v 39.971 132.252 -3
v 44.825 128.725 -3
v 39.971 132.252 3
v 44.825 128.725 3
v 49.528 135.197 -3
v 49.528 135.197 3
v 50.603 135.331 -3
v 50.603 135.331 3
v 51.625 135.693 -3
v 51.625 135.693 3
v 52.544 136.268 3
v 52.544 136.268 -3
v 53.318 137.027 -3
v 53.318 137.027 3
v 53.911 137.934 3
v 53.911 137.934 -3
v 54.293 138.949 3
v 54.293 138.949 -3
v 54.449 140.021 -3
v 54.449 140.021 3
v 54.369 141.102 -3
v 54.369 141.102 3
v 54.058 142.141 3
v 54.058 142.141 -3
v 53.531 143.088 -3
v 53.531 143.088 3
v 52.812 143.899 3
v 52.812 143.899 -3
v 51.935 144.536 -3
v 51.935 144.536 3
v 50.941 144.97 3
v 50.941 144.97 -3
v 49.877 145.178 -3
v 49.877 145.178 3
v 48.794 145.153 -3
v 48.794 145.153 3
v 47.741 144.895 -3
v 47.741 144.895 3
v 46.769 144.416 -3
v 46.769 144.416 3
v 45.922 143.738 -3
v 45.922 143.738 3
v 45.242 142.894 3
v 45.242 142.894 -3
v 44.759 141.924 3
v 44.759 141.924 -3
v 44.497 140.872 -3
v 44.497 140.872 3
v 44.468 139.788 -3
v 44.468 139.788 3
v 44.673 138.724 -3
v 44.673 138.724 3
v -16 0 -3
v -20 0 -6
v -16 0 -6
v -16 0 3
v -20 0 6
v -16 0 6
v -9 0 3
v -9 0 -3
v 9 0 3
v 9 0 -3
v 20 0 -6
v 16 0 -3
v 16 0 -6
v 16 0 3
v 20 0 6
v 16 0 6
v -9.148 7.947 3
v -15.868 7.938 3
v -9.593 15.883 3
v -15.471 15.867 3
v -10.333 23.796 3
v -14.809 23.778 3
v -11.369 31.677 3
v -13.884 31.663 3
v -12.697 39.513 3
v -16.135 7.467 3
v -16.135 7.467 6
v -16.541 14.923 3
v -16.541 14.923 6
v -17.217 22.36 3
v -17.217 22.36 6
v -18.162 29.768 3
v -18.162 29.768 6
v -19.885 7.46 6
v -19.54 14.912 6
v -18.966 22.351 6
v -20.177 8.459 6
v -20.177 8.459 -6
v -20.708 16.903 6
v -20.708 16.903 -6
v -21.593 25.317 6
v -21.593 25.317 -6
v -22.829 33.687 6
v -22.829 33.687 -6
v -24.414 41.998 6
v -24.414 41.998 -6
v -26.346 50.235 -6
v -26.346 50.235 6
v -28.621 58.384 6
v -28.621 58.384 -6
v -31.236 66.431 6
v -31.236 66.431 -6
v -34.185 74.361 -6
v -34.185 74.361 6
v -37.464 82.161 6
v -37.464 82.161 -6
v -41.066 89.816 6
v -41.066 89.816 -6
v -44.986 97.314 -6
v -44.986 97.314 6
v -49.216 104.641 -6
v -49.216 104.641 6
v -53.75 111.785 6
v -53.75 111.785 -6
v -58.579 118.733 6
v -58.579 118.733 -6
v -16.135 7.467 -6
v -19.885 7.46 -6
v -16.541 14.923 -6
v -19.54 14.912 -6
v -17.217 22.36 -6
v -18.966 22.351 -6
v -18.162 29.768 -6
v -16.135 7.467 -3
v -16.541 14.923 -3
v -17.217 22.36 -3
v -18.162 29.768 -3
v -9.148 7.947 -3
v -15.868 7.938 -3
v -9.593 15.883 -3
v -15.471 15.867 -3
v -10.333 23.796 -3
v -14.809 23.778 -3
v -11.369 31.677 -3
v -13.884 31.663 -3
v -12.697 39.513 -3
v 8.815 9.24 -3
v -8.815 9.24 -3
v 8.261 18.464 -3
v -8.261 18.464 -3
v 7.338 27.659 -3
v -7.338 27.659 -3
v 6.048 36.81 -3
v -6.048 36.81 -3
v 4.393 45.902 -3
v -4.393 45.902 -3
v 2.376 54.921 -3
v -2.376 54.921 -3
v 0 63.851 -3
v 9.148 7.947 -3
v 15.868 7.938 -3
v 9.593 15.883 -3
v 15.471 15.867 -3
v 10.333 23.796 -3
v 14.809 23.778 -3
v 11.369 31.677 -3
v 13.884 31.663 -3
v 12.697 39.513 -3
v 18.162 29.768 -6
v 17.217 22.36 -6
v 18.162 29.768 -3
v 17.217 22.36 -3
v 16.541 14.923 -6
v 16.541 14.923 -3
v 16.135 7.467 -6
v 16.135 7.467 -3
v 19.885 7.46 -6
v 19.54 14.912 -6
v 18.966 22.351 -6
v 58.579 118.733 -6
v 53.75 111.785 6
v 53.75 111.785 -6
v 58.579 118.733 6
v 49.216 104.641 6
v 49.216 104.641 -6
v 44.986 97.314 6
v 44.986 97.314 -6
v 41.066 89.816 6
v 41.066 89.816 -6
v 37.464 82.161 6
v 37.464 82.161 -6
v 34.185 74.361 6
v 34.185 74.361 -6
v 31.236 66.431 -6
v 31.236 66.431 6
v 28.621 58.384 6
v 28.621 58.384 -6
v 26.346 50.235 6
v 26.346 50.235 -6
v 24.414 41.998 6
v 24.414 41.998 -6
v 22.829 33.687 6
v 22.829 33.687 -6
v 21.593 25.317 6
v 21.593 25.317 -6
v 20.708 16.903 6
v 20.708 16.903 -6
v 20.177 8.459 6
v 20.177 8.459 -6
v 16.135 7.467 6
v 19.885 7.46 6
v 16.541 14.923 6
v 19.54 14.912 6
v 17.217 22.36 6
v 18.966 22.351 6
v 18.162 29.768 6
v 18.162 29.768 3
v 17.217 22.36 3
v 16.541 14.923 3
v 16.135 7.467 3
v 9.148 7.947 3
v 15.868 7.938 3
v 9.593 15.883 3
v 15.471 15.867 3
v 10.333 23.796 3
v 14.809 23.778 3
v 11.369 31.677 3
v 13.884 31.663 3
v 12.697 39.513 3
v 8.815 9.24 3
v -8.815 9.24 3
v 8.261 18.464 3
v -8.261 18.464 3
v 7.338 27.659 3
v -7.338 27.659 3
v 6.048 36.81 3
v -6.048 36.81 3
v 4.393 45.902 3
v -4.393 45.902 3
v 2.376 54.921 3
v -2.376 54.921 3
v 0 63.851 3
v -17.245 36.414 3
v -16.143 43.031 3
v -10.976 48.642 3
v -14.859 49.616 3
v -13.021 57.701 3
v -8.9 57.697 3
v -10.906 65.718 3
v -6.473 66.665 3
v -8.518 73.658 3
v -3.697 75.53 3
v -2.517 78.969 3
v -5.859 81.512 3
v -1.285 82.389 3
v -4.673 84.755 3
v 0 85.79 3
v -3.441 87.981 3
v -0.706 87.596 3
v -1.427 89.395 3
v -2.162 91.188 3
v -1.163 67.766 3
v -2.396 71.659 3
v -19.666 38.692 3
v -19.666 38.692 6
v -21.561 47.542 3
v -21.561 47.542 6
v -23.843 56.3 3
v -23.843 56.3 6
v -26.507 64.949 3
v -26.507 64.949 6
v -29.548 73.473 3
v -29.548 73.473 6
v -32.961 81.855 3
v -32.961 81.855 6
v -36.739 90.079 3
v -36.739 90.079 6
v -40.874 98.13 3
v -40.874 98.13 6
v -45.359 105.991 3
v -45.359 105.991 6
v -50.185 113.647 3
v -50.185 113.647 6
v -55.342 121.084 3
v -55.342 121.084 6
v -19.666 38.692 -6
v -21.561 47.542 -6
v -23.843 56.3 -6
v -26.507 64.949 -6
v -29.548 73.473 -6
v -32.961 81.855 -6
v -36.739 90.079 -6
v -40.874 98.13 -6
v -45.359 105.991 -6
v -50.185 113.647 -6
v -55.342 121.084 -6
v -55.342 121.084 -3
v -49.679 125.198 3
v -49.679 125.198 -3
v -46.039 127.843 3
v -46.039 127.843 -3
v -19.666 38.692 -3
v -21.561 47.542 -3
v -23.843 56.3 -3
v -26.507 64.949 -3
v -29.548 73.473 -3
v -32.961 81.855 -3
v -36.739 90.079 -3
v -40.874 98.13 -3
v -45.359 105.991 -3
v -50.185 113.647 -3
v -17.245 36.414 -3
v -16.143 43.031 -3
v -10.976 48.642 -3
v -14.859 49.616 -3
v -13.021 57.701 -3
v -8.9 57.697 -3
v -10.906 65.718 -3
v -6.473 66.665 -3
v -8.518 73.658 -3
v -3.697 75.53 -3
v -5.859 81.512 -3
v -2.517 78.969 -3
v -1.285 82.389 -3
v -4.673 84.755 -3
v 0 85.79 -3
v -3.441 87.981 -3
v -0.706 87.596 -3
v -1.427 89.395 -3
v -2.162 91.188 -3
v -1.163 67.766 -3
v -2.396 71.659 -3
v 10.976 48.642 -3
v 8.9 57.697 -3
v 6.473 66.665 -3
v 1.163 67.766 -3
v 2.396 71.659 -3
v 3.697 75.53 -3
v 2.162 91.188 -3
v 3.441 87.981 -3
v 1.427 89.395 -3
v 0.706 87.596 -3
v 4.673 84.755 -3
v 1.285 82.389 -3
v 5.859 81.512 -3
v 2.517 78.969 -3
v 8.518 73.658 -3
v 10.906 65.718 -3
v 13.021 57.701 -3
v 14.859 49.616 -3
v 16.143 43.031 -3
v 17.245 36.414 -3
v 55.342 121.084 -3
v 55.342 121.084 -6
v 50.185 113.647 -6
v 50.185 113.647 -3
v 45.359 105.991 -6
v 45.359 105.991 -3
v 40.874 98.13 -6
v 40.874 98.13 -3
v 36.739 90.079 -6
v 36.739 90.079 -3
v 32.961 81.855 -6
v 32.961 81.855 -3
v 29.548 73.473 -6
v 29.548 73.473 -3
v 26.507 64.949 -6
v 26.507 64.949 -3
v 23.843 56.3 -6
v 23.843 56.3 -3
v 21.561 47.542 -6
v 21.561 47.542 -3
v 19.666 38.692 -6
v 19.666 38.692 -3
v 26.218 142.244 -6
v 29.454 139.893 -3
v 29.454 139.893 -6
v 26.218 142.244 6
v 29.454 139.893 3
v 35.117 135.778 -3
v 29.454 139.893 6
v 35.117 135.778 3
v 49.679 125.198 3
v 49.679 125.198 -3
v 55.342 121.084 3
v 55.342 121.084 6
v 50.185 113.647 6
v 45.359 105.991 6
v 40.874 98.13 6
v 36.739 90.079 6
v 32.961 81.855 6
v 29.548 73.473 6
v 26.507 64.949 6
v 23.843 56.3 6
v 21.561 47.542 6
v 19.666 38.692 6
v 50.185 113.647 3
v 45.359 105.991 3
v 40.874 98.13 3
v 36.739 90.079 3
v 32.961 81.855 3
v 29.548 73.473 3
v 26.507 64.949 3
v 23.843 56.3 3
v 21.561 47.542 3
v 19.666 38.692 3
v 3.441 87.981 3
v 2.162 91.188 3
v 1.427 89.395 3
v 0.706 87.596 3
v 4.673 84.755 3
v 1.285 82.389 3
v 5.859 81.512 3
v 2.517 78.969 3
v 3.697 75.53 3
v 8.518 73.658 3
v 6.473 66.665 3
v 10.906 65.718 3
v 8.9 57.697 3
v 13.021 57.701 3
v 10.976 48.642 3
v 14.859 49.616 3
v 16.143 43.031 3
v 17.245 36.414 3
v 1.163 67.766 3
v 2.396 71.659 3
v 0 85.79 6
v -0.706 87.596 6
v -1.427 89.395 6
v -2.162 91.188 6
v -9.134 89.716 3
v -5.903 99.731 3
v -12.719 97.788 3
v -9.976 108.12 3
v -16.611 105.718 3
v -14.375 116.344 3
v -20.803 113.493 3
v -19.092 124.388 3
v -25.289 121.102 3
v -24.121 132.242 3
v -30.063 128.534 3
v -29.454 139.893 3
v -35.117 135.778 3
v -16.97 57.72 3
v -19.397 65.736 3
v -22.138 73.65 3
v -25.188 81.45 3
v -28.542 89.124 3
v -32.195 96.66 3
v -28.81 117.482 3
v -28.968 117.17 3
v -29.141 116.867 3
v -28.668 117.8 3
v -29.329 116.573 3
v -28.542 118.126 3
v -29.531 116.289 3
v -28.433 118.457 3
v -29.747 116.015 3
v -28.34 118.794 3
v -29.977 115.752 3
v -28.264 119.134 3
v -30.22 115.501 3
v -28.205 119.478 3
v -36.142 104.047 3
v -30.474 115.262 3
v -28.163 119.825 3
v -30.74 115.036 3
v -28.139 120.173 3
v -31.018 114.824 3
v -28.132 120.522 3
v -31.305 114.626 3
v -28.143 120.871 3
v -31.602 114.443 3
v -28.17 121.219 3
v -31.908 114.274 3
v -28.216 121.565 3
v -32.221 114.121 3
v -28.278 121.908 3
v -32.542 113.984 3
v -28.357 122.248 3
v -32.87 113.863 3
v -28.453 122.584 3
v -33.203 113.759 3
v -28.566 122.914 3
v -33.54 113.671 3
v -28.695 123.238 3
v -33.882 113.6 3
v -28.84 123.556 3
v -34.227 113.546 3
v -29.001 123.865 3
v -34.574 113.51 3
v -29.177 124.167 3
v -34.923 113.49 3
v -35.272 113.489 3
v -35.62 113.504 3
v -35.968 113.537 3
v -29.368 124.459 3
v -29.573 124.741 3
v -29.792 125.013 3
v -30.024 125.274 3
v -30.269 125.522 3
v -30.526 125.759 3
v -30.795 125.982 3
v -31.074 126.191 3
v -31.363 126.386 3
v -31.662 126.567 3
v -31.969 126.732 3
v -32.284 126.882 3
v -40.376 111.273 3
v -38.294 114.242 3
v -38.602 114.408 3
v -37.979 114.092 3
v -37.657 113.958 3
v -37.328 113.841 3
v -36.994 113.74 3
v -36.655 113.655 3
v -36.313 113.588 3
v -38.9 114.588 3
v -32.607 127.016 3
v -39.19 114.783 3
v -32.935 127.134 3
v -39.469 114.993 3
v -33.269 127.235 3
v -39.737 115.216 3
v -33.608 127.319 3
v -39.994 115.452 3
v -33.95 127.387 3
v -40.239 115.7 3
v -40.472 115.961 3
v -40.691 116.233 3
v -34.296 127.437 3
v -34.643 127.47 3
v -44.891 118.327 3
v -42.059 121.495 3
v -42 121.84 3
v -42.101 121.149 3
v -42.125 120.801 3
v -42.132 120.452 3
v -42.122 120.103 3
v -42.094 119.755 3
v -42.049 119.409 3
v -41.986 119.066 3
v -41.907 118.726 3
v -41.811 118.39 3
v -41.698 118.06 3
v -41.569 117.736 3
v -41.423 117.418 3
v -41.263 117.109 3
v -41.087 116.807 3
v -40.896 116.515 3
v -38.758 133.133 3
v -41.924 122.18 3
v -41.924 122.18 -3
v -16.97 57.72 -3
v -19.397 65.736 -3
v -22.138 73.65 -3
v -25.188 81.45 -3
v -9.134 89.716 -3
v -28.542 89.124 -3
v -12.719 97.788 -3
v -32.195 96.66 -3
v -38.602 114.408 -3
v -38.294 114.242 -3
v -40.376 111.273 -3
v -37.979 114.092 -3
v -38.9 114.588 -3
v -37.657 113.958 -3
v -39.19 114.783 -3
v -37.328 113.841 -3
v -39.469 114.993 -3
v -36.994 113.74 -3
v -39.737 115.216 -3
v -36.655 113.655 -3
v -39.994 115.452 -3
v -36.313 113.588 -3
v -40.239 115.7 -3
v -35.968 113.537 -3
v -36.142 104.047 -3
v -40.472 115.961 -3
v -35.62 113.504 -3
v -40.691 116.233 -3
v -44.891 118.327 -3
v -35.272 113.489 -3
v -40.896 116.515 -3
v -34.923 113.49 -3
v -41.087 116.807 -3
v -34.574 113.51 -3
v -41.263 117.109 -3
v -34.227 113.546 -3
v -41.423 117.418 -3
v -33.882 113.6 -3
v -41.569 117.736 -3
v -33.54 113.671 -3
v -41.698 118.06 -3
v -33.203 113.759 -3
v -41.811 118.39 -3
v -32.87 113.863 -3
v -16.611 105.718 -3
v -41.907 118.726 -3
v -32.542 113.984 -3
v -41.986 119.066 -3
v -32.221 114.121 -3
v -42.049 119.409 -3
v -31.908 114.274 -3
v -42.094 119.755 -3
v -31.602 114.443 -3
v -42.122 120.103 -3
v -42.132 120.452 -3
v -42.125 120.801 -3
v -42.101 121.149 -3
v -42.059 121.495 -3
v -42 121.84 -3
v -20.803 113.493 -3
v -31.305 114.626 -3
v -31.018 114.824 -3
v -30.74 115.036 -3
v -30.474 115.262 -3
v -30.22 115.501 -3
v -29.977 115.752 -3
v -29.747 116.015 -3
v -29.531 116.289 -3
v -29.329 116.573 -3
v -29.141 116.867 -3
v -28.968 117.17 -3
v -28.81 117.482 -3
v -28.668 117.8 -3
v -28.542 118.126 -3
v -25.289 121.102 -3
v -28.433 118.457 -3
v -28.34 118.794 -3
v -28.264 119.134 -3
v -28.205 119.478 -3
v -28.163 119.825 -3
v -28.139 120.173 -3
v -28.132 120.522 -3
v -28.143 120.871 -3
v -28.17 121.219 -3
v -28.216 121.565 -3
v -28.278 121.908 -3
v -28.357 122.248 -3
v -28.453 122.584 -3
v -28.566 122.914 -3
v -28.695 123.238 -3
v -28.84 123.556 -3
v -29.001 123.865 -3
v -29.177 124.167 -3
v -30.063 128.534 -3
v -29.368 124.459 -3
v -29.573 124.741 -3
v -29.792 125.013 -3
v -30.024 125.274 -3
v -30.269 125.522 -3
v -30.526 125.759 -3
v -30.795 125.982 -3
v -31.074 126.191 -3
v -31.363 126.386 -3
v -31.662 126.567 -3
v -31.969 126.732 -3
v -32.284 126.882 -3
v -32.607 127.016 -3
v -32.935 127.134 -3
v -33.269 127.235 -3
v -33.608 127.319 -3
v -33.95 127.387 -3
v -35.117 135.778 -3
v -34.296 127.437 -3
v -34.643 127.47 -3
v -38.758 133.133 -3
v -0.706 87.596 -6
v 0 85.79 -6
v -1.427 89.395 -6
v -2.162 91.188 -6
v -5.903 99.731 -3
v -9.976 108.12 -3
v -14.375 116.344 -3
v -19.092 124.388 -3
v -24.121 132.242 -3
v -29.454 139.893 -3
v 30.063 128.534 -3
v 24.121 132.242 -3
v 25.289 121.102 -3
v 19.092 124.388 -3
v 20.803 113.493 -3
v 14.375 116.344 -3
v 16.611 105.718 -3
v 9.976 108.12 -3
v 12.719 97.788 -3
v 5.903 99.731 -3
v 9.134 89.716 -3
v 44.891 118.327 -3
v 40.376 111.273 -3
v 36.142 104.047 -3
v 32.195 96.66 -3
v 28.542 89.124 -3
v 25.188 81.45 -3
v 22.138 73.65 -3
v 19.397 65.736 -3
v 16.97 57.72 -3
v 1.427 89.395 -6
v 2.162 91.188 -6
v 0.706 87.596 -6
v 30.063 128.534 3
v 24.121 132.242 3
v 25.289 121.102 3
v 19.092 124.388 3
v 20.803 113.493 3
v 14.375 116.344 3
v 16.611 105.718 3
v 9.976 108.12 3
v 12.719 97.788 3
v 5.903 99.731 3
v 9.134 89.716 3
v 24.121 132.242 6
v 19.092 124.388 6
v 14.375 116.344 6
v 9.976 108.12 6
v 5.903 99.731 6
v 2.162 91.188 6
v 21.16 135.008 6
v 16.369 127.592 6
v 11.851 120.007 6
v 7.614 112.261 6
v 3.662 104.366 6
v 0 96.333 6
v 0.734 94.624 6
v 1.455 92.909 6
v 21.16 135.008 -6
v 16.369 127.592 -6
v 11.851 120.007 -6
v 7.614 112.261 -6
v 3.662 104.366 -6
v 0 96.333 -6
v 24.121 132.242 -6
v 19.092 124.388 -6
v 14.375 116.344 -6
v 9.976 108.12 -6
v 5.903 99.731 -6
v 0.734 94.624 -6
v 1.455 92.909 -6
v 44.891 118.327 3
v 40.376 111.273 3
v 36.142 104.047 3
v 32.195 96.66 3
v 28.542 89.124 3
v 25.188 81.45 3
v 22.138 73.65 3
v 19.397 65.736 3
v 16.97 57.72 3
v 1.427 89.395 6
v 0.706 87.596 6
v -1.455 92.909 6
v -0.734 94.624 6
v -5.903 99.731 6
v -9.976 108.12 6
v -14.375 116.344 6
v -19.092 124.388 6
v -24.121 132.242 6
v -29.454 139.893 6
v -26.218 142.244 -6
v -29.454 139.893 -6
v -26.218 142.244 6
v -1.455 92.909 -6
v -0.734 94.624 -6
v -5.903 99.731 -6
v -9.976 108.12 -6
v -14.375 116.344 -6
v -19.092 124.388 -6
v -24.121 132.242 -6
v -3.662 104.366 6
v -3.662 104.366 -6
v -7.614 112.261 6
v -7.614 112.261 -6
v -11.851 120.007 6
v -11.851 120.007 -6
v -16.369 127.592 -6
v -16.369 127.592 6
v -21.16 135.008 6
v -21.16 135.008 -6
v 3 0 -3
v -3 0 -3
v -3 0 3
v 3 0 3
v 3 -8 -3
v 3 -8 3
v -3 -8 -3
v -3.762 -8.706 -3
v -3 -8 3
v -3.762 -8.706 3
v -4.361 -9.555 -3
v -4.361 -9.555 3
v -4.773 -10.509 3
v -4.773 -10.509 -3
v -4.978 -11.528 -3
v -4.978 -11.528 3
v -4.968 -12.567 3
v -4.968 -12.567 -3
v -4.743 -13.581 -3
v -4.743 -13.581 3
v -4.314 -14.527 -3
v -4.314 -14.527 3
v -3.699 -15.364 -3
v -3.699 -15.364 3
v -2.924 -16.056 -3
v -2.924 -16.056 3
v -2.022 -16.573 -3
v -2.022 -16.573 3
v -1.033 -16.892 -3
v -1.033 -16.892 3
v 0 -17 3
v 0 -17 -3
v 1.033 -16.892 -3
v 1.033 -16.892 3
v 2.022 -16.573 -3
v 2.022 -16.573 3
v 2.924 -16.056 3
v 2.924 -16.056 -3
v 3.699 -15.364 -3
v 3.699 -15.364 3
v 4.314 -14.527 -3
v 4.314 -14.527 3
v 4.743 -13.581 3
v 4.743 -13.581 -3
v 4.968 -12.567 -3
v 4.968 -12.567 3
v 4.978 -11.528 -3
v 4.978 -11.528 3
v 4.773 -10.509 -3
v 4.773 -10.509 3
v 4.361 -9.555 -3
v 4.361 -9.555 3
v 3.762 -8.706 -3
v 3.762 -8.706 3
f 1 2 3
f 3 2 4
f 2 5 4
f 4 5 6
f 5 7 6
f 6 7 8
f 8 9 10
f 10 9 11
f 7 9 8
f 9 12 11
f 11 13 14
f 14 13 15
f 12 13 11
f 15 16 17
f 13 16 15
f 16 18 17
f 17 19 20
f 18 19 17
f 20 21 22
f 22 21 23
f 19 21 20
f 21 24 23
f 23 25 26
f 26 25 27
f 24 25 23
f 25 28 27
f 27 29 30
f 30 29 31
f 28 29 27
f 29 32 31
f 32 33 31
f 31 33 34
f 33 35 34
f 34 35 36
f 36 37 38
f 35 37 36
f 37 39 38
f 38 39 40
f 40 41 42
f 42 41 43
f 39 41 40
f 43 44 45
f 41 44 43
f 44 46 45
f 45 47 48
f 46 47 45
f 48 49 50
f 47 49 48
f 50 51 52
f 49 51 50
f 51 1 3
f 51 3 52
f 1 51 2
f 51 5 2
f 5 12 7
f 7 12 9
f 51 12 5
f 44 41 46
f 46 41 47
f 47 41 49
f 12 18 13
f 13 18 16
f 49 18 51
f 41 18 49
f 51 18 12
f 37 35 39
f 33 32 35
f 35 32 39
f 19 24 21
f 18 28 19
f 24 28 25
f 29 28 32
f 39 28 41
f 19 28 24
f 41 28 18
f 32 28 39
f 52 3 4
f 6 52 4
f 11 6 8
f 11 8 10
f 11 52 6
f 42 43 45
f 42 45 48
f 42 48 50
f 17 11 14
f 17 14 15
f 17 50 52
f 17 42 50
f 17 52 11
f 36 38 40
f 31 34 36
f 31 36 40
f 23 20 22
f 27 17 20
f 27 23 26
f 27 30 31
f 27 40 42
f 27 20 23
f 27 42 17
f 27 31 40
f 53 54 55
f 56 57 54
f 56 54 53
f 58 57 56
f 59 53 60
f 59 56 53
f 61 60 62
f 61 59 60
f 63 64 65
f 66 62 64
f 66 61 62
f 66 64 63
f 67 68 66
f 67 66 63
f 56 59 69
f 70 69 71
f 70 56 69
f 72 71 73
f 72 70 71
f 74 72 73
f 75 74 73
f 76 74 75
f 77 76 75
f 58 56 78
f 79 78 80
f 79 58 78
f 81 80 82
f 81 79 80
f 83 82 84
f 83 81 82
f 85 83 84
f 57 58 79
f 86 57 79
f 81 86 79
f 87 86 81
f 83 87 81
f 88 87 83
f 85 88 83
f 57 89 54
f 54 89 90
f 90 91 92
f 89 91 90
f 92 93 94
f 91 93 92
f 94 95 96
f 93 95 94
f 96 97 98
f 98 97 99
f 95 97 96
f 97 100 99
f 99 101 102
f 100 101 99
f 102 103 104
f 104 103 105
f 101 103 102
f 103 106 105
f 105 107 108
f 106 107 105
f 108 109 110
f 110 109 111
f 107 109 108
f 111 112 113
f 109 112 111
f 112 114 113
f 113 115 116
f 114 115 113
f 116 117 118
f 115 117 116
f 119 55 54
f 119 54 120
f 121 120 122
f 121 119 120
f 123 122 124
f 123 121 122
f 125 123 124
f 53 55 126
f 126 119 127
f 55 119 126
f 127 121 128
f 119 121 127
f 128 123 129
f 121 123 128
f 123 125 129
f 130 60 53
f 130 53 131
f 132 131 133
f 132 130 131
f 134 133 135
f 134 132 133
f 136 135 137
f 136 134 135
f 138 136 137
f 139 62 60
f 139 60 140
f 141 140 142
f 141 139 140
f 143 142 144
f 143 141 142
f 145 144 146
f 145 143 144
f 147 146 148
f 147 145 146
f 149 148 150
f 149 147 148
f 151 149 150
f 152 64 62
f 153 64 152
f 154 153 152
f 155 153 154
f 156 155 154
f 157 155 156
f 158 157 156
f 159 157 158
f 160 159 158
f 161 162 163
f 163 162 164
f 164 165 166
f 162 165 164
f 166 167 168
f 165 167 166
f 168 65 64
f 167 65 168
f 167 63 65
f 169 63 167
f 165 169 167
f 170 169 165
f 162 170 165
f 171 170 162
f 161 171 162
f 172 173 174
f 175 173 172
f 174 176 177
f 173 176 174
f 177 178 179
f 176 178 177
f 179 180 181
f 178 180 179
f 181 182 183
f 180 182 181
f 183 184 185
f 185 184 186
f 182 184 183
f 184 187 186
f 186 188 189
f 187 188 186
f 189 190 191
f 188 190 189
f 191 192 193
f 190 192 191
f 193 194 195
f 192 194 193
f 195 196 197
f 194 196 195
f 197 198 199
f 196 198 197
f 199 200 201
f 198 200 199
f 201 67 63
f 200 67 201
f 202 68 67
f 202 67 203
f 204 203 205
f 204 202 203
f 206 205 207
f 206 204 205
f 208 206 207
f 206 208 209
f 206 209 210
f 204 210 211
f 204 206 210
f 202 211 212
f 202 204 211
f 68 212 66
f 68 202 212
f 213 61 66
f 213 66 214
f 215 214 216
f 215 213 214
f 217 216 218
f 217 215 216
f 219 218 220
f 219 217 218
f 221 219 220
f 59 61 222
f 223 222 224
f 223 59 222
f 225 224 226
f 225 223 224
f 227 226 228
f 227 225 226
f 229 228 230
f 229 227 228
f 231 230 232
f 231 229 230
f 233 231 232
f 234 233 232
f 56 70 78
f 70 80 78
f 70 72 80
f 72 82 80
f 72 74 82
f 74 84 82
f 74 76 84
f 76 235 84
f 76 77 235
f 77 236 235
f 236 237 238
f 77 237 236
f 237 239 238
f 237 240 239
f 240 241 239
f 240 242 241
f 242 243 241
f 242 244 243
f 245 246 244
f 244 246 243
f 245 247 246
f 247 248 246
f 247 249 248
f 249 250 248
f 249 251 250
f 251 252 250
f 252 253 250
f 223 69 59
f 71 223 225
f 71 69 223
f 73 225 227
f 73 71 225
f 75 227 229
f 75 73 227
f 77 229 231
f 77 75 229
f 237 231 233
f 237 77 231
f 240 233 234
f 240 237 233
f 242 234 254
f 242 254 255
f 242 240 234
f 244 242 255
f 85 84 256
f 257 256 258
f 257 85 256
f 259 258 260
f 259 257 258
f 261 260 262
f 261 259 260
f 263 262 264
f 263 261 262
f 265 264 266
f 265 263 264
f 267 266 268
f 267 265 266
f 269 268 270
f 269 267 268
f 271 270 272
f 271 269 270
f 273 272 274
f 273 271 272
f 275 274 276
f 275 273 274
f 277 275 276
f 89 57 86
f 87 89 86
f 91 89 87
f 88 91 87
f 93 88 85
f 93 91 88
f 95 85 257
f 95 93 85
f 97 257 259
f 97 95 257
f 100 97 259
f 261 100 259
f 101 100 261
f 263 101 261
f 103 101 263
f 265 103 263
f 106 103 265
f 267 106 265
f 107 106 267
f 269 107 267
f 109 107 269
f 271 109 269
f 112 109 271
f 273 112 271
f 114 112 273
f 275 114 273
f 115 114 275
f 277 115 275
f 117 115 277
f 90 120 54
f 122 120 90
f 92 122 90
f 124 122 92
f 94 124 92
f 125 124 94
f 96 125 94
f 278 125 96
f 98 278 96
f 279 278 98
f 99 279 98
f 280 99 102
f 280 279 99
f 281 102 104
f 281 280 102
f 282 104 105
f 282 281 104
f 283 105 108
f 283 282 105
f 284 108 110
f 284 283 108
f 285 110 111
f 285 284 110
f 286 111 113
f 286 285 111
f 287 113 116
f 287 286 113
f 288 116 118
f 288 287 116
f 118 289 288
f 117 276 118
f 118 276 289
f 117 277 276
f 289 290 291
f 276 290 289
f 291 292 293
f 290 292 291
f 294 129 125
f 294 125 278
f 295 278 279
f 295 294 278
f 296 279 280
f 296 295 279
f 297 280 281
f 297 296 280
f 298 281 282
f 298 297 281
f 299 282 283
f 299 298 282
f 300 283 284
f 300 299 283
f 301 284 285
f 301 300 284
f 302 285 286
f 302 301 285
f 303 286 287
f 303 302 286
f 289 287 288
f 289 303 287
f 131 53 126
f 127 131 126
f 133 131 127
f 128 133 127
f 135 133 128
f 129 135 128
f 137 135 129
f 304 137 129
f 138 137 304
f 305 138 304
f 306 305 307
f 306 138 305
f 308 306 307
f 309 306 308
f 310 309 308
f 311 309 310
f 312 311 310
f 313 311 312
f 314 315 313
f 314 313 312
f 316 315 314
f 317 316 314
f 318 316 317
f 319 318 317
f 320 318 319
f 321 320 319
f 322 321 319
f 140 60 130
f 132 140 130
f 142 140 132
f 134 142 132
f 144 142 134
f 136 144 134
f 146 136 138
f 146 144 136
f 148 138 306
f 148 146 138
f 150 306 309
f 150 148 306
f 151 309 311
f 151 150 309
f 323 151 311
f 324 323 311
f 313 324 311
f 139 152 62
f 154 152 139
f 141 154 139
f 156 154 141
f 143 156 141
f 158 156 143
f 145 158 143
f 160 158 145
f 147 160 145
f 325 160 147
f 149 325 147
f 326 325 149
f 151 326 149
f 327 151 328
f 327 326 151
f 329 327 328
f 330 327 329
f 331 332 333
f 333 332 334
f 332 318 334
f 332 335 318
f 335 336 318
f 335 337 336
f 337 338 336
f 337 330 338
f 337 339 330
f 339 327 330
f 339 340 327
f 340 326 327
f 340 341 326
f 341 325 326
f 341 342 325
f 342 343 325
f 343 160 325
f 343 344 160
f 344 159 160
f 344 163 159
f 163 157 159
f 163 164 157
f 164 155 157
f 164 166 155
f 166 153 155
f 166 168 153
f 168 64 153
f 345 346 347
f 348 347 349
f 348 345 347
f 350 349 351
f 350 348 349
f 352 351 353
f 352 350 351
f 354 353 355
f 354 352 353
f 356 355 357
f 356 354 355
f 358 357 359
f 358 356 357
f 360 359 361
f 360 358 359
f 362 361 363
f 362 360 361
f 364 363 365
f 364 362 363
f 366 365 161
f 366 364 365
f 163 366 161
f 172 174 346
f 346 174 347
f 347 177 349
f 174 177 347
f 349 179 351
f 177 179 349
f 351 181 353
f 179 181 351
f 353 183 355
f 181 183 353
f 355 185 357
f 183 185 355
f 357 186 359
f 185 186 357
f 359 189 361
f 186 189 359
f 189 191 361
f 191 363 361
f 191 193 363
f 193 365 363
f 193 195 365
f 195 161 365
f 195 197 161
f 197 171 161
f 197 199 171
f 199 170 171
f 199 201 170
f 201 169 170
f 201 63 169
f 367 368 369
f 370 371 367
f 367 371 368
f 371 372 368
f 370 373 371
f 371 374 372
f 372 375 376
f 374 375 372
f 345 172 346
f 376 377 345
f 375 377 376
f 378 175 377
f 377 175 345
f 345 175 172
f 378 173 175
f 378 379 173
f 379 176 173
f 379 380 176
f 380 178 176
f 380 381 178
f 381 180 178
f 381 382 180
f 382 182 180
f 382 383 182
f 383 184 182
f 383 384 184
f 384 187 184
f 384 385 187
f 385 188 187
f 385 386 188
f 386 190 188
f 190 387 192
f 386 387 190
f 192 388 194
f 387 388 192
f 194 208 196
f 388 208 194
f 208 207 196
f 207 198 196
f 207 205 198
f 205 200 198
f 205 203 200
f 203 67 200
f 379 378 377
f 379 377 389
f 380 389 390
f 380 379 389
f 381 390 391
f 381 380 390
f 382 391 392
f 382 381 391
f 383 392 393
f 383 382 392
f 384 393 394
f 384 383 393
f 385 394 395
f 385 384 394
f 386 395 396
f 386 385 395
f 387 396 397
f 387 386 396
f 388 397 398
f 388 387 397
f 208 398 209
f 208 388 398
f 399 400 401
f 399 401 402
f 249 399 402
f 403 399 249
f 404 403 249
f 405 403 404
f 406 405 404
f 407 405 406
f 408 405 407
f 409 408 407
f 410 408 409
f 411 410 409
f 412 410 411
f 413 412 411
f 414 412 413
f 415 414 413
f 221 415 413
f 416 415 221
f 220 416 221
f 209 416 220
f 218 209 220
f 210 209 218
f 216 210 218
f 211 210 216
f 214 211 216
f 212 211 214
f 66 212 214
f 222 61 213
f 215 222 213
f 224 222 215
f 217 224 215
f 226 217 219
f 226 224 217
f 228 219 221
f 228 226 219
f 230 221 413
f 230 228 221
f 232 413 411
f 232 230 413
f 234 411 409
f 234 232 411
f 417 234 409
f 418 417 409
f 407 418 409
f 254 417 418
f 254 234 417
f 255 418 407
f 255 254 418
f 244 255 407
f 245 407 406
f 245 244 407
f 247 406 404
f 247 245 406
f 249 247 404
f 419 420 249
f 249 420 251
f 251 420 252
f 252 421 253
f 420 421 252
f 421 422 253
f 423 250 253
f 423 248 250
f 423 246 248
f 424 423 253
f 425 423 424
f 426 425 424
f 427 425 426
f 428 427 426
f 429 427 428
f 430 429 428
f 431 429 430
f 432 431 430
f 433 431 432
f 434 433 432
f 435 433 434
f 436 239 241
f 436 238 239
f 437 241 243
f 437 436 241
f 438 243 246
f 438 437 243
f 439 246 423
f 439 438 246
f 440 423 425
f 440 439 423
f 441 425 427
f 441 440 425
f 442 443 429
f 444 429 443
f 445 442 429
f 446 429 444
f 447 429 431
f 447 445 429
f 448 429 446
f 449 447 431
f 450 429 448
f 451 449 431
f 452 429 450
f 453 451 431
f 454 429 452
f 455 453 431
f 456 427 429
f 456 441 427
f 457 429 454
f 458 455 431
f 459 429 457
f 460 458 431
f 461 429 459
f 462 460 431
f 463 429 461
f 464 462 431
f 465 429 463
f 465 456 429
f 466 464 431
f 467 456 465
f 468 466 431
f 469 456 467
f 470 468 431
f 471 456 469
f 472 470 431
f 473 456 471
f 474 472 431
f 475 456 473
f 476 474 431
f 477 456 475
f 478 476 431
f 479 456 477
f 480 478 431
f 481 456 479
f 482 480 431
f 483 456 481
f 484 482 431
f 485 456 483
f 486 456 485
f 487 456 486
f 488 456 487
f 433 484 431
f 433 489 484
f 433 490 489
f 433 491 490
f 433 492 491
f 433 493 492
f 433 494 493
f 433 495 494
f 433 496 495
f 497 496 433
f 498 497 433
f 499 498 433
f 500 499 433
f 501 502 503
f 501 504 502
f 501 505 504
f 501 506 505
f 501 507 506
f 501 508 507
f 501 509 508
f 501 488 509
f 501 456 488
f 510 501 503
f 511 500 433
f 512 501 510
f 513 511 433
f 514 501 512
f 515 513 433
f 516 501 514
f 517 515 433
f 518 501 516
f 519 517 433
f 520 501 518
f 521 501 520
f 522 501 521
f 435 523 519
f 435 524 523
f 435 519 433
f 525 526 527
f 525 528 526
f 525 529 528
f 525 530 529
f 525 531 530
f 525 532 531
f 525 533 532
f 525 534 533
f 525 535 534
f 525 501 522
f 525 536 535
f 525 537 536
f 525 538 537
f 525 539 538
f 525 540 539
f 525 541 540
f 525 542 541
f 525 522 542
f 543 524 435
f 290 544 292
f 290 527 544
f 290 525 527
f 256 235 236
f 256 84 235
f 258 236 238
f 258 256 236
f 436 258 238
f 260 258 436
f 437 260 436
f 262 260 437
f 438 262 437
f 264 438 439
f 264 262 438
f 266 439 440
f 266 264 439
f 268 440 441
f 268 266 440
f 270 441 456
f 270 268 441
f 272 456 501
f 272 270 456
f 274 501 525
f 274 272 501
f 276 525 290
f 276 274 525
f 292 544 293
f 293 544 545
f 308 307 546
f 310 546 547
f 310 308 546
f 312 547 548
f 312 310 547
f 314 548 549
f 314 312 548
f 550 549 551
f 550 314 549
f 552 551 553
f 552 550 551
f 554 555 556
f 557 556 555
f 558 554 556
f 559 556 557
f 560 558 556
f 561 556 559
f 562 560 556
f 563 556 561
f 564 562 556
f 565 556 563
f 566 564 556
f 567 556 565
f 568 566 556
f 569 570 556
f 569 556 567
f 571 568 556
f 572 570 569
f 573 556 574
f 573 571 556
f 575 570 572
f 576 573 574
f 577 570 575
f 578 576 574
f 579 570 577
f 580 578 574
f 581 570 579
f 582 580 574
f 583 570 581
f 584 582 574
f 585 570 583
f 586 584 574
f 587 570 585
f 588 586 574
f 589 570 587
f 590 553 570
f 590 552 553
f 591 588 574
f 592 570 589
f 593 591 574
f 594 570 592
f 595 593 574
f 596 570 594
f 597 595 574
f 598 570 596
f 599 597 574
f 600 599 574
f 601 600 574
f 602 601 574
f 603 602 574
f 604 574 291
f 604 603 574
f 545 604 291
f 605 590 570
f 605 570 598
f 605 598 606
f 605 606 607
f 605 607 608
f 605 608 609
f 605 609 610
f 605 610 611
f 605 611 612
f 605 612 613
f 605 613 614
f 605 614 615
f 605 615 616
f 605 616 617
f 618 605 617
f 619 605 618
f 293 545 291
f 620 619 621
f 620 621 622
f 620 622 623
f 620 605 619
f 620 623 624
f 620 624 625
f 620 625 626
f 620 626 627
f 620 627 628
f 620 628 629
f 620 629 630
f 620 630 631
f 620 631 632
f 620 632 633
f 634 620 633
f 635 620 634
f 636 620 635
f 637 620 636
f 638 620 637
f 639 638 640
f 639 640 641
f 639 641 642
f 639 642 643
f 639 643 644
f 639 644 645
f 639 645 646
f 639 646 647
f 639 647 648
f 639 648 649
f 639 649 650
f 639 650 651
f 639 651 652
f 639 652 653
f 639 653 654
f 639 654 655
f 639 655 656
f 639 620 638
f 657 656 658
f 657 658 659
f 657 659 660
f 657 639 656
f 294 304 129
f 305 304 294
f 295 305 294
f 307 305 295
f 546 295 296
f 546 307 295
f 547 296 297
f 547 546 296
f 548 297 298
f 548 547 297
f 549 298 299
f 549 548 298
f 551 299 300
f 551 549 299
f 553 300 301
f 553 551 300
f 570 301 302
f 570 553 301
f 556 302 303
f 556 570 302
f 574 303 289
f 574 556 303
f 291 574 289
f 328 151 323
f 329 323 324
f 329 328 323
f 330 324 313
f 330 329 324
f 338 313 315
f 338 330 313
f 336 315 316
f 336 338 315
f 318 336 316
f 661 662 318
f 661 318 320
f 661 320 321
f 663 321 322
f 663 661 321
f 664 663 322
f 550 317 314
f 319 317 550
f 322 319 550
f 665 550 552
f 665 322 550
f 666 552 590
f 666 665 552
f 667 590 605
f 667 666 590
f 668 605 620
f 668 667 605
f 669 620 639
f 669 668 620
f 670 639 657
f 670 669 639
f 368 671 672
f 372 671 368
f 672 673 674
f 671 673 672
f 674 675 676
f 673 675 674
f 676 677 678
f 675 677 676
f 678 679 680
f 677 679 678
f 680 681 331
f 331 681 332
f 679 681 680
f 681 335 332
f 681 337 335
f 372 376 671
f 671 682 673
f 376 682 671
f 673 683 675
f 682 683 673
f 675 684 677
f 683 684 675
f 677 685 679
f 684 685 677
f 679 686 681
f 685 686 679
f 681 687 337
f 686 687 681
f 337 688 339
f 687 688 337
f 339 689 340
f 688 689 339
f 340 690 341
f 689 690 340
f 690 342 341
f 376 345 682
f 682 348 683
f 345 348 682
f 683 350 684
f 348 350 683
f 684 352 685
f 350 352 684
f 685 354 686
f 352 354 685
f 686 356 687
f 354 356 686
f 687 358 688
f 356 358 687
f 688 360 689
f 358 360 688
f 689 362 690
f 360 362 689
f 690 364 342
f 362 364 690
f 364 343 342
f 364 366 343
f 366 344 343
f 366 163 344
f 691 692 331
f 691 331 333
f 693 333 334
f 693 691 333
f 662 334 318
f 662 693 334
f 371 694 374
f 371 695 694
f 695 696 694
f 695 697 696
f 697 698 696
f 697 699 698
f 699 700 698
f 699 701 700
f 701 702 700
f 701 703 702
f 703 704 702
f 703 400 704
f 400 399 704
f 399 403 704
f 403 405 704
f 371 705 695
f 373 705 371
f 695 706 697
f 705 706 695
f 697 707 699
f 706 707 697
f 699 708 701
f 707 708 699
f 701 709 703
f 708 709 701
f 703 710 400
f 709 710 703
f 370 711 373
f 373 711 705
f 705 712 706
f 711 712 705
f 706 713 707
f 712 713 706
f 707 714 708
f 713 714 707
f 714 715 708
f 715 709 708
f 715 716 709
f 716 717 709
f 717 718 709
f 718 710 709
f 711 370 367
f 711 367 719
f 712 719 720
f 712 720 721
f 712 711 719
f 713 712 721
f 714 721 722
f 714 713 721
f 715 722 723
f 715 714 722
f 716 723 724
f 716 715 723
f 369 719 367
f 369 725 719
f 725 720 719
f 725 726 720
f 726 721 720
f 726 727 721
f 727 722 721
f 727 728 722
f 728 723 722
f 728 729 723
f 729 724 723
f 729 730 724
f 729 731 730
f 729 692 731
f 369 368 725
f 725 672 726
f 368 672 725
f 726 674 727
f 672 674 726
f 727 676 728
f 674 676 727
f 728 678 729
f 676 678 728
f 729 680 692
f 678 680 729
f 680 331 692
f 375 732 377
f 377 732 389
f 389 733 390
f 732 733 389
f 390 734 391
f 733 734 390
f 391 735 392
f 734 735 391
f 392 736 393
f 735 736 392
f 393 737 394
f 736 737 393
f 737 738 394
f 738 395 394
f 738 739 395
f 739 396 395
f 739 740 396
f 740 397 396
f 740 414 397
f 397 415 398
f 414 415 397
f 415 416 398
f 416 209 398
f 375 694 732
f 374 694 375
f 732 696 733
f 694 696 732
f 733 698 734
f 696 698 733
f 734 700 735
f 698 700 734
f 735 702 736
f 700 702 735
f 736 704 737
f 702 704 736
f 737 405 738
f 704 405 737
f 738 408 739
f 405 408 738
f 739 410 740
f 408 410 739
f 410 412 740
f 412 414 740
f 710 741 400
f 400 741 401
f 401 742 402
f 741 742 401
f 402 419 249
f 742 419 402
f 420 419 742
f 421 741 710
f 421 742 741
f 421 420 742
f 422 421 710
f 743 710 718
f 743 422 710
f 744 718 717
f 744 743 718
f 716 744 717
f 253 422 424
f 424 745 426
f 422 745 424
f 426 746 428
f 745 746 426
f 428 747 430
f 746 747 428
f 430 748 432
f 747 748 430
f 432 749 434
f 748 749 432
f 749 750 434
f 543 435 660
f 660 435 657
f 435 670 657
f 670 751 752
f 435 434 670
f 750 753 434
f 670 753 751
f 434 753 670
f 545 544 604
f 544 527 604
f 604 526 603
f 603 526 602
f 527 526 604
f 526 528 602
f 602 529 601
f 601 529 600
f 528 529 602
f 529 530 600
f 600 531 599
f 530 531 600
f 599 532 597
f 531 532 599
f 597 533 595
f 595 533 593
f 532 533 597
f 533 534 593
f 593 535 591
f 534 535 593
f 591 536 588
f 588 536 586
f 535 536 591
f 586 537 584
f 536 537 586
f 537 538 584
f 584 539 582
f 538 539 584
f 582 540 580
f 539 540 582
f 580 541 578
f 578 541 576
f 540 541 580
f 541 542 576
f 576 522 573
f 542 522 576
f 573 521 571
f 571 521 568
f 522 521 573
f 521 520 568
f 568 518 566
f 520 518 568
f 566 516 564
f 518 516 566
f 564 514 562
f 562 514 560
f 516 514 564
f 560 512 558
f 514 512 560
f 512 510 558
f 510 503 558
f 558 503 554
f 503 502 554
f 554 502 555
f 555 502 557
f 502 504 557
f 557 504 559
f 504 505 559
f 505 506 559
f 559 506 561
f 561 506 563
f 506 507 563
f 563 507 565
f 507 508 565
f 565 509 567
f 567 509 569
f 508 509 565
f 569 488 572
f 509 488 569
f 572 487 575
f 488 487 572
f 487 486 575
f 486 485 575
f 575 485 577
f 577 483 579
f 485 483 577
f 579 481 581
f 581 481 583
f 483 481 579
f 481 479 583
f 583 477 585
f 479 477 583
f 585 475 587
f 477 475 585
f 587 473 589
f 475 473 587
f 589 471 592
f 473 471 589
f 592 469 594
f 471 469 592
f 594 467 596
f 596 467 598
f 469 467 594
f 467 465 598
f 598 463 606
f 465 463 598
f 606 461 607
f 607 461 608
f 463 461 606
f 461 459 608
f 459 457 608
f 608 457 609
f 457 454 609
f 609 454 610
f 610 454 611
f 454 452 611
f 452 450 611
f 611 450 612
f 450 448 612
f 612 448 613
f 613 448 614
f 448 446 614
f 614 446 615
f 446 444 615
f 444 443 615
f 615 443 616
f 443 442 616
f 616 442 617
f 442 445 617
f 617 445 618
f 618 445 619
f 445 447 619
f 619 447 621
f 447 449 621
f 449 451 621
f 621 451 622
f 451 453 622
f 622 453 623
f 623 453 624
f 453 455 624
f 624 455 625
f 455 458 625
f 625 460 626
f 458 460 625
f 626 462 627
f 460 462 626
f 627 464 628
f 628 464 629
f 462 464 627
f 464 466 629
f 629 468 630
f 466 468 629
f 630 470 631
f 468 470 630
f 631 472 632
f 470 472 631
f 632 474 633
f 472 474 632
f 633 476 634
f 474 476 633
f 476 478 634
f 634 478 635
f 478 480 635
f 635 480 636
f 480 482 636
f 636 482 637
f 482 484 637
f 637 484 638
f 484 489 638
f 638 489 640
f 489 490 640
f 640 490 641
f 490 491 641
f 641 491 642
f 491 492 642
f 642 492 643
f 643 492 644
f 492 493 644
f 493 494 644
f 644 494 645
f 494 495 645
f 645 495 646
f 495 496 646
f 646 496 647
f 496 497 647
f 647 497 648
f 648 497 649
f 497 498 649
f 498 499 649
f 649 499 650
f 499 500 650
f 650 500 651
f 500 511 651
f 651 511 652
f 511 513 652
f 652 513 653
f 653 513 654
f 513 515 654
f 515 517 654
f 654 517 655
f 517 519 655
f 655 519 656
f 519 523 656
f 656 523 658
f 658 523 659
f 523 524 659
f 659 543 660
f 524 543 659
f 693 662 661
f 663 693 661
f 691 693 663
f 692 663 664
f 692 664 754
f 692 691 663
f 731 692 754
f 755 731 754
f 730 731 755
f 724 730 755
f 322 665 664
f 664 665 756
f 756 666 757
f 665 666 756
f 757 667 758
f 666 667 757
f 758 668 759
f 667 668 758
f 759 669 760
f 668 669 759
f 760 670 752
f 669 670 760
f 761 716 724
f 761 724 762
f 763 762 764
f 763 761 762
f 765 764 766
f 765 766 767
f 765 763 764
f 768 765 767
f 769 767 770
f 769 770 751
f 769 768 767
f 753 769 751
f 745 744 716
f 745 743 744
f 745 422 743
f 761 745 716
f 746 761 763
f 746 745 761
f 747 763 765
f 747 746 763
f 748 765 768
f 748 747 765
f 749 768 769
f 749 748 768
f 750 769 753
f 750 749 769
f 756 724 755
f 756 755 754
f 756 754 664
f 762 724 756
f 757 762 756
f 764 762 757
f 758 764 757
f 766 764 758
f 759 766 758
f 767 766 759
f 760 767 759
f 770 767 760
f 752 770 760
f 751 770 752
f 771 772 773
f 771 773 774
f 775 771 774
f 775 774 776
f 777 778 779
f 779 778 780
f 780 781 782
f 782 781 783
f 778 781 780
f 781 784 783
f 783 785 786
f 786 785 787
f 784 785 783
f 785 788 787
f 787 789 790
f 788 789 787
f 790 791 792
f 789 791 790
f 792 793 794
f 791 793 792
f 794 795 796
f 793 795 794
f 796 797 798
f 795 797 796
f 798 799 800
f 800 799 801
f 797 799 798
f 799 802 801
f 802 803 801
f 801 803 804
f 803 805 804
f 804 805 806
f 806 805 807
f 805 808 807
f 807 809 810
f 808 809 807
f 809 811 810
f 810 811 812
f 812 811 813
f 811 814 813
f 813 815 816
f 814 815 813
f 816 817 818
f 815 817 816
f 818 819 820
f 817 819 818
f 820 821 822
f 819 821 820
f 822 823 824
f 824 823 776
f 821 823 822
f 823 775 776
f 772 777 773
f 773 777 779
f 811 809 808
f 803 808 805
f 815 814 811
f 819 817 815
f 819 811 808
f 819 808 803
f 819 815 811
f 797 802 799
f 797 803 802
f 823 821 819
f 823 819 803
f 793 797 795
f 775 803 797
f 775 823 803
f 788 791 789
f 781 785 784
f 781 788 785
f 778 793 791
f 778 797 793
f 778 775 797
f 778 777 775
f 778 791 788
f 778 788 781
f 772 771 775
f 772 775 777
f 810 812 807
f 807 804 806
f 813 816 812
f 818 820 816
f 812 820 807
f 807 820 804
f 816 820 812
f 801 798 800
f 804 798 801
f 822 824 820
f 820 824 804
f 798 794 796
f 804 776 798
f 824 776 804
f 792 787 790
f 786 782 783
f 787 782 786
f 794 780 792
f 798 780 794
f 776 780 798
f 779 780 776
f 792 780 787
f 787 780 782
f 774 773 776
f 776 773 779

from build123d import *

# Parameters (mm, degrees)
SKETCH013_W       = 32
SKETCH013_H       = 3
POCKET_DEPTH      = 6.001
POCKET_DEPTH_BACK = -6.001
PAD_DEPTH         = 3
PAD001_DEPTH      = 3


with BuildPart() as main:
    # AdditivePipe: sweep along a path in Sketch
    with BuildLine(Plane.XY) as additivepipe_path:
        ThreePointArc((0, 0), (-10.865453, 68.601773), (-42.398227, 130.488326))
    # Sketch002 → AdditivePipe (sweep)
    with BuildSketch(Plane.XZ):
        Polygon((-20, 6), (-20, -6), (-16, -6), (-16, -3), (-9, -3), (9, -3), (16, -3), (16, -6), (20, -6), (20, 6), (16, 6), (16, 3), (9, 3), (-9, 3), (-16, 3), (-16, 6), align=None)
    sweep(path=additivepipe_path.line)

    # AdditivePipe001: sweep along a path in Sketch001
    with BuildLine(Plane.XY) as additivepipe001_path:
        ThreePointArc((42.398227, 130.488326), (10.865453, 68.601773), (0, 0))
    # Sketch002 → AdditivePipe001 (sweep)
    with BuildSketch(Plane.XZ):
        Polygon((-20, 6), (-20, -6), (-16, -6), (-16, -3), (-9, -3), (9, -3), (16, -3), (16, -6), (20, -6), (20, 6), (16, 6), (16, 3), (9, 3), (-9, 3), (-16, 3), (-16, 6), align=None)
    sweep(path=additivepipe001_path.line)

    # SubtractivePipe: sweep along a path in Sketch
    with BuildLine(Plane.XY) as subtractivepipe_path:
        ThreePointArc((0, 0), (-10.865453, 68.601773), (-42.398227, 130.488326))
    # Sketch013 (on Face1 of AdditivePipe001) → SubtractivePipe (sweep, cut)
    with BuildSketch(Plane.XZ):
        with Locations((0, 4.5)):
            Rectangle(SKETCH013_W, SKETCH013_H)
    subtractivepipe = sweep(path=subtractivepipe_path.line, mode=Mode.SUBTRACT)

    # SubtractivePipe001: sweep along a path in Sketch001
    with BuildLine(Plane.XY) as subtractivepipe001_path:
        ThreePointArc((42.398227, 130.488326), (10.865453, 68.601773), (0, 0))
    # Sketch013 (on Face1 of AdditivePipe001) → SubtractivePipe001 (sweep, cut)
    with BuildSketch(Plane.XZ):
        with Locations((0, 4.5)):
            Rectangle(SKETCH013_W, SKETCH013_H)
    subtractivepipe001 = sweep(path=subtractivepipe001_path.line, mode=Mode.SUBTRACT)

    # Mirrored: SubtractivePipe across XY
    add(subtractivepipe.mirror(Plane.XY), mode=Mode.SUBTRACT)

    # Mirrored001: SubtractivePipe001 across XY
    add(subtractivepipe001.mirror(Plane.XY), mode=Mode.SUBTRACT)

    # Sketch008 → Pocket (cut, two sides)
    with BuildSketch(Plane.XY) as pocket_sk:
        with BuildLine():
            Line((-46.038804, 127.843292), (-38.757651, 133.13336))
            Line((-38.757651, 133.13336), (-34.643154, 127.470241))
            ThreePointArc((-41.924307, 122.180173), (-31.017586, 114.824218), (-34.643154, 127.470241))
            Line((-46.038804, 127.843292), (-41.924307, 122.180173))
        make_face()
    extrude(amount=-POCKET_DEPTH, mode=Mode.SUBTRACT)
    extrude(pocket_sk.sketch, amount=-POCKET_DEPTH_BACK, mode=Mode.SUBTRACT)


with BuildPart() as male1:
    # Sketch010 → Pad (new body, symmetric)
    with BuildSketch(Plane.XY):
        with BuildLine():
            Line((-3, 0), (3, 0))
            Line((3, 0), (3, -8))
            ThreePointArc((-3, -8), (0, -17), (3, -8))
            Line((-3, 0), (-3, -8))
        make_face()
    extrude(amount=PAD_DEPTH, both=True)


with BuildPart() as male3:
    # Sketch011 → Pad001 (new body, symmetric)
    with BuildSketch(Plane.XY):
        with BuildLine():
            Line((39.971176, 132.251682), (44.825278, 128.72497))
            Line((44.825278, 128.72497), (49.52756, 135.197106))
            ThreePointArc((49.52756, 135.197106), (52.390577, 144.241615), (44.673458, 138.723818))
            Line((39.971176, 132.251682), (44.673458, 138.723818))
        make_face()
    extrude(amount=PAD001_DEPTH, both=True)


solid = Compound([main.part, male1.part, male3.part])
